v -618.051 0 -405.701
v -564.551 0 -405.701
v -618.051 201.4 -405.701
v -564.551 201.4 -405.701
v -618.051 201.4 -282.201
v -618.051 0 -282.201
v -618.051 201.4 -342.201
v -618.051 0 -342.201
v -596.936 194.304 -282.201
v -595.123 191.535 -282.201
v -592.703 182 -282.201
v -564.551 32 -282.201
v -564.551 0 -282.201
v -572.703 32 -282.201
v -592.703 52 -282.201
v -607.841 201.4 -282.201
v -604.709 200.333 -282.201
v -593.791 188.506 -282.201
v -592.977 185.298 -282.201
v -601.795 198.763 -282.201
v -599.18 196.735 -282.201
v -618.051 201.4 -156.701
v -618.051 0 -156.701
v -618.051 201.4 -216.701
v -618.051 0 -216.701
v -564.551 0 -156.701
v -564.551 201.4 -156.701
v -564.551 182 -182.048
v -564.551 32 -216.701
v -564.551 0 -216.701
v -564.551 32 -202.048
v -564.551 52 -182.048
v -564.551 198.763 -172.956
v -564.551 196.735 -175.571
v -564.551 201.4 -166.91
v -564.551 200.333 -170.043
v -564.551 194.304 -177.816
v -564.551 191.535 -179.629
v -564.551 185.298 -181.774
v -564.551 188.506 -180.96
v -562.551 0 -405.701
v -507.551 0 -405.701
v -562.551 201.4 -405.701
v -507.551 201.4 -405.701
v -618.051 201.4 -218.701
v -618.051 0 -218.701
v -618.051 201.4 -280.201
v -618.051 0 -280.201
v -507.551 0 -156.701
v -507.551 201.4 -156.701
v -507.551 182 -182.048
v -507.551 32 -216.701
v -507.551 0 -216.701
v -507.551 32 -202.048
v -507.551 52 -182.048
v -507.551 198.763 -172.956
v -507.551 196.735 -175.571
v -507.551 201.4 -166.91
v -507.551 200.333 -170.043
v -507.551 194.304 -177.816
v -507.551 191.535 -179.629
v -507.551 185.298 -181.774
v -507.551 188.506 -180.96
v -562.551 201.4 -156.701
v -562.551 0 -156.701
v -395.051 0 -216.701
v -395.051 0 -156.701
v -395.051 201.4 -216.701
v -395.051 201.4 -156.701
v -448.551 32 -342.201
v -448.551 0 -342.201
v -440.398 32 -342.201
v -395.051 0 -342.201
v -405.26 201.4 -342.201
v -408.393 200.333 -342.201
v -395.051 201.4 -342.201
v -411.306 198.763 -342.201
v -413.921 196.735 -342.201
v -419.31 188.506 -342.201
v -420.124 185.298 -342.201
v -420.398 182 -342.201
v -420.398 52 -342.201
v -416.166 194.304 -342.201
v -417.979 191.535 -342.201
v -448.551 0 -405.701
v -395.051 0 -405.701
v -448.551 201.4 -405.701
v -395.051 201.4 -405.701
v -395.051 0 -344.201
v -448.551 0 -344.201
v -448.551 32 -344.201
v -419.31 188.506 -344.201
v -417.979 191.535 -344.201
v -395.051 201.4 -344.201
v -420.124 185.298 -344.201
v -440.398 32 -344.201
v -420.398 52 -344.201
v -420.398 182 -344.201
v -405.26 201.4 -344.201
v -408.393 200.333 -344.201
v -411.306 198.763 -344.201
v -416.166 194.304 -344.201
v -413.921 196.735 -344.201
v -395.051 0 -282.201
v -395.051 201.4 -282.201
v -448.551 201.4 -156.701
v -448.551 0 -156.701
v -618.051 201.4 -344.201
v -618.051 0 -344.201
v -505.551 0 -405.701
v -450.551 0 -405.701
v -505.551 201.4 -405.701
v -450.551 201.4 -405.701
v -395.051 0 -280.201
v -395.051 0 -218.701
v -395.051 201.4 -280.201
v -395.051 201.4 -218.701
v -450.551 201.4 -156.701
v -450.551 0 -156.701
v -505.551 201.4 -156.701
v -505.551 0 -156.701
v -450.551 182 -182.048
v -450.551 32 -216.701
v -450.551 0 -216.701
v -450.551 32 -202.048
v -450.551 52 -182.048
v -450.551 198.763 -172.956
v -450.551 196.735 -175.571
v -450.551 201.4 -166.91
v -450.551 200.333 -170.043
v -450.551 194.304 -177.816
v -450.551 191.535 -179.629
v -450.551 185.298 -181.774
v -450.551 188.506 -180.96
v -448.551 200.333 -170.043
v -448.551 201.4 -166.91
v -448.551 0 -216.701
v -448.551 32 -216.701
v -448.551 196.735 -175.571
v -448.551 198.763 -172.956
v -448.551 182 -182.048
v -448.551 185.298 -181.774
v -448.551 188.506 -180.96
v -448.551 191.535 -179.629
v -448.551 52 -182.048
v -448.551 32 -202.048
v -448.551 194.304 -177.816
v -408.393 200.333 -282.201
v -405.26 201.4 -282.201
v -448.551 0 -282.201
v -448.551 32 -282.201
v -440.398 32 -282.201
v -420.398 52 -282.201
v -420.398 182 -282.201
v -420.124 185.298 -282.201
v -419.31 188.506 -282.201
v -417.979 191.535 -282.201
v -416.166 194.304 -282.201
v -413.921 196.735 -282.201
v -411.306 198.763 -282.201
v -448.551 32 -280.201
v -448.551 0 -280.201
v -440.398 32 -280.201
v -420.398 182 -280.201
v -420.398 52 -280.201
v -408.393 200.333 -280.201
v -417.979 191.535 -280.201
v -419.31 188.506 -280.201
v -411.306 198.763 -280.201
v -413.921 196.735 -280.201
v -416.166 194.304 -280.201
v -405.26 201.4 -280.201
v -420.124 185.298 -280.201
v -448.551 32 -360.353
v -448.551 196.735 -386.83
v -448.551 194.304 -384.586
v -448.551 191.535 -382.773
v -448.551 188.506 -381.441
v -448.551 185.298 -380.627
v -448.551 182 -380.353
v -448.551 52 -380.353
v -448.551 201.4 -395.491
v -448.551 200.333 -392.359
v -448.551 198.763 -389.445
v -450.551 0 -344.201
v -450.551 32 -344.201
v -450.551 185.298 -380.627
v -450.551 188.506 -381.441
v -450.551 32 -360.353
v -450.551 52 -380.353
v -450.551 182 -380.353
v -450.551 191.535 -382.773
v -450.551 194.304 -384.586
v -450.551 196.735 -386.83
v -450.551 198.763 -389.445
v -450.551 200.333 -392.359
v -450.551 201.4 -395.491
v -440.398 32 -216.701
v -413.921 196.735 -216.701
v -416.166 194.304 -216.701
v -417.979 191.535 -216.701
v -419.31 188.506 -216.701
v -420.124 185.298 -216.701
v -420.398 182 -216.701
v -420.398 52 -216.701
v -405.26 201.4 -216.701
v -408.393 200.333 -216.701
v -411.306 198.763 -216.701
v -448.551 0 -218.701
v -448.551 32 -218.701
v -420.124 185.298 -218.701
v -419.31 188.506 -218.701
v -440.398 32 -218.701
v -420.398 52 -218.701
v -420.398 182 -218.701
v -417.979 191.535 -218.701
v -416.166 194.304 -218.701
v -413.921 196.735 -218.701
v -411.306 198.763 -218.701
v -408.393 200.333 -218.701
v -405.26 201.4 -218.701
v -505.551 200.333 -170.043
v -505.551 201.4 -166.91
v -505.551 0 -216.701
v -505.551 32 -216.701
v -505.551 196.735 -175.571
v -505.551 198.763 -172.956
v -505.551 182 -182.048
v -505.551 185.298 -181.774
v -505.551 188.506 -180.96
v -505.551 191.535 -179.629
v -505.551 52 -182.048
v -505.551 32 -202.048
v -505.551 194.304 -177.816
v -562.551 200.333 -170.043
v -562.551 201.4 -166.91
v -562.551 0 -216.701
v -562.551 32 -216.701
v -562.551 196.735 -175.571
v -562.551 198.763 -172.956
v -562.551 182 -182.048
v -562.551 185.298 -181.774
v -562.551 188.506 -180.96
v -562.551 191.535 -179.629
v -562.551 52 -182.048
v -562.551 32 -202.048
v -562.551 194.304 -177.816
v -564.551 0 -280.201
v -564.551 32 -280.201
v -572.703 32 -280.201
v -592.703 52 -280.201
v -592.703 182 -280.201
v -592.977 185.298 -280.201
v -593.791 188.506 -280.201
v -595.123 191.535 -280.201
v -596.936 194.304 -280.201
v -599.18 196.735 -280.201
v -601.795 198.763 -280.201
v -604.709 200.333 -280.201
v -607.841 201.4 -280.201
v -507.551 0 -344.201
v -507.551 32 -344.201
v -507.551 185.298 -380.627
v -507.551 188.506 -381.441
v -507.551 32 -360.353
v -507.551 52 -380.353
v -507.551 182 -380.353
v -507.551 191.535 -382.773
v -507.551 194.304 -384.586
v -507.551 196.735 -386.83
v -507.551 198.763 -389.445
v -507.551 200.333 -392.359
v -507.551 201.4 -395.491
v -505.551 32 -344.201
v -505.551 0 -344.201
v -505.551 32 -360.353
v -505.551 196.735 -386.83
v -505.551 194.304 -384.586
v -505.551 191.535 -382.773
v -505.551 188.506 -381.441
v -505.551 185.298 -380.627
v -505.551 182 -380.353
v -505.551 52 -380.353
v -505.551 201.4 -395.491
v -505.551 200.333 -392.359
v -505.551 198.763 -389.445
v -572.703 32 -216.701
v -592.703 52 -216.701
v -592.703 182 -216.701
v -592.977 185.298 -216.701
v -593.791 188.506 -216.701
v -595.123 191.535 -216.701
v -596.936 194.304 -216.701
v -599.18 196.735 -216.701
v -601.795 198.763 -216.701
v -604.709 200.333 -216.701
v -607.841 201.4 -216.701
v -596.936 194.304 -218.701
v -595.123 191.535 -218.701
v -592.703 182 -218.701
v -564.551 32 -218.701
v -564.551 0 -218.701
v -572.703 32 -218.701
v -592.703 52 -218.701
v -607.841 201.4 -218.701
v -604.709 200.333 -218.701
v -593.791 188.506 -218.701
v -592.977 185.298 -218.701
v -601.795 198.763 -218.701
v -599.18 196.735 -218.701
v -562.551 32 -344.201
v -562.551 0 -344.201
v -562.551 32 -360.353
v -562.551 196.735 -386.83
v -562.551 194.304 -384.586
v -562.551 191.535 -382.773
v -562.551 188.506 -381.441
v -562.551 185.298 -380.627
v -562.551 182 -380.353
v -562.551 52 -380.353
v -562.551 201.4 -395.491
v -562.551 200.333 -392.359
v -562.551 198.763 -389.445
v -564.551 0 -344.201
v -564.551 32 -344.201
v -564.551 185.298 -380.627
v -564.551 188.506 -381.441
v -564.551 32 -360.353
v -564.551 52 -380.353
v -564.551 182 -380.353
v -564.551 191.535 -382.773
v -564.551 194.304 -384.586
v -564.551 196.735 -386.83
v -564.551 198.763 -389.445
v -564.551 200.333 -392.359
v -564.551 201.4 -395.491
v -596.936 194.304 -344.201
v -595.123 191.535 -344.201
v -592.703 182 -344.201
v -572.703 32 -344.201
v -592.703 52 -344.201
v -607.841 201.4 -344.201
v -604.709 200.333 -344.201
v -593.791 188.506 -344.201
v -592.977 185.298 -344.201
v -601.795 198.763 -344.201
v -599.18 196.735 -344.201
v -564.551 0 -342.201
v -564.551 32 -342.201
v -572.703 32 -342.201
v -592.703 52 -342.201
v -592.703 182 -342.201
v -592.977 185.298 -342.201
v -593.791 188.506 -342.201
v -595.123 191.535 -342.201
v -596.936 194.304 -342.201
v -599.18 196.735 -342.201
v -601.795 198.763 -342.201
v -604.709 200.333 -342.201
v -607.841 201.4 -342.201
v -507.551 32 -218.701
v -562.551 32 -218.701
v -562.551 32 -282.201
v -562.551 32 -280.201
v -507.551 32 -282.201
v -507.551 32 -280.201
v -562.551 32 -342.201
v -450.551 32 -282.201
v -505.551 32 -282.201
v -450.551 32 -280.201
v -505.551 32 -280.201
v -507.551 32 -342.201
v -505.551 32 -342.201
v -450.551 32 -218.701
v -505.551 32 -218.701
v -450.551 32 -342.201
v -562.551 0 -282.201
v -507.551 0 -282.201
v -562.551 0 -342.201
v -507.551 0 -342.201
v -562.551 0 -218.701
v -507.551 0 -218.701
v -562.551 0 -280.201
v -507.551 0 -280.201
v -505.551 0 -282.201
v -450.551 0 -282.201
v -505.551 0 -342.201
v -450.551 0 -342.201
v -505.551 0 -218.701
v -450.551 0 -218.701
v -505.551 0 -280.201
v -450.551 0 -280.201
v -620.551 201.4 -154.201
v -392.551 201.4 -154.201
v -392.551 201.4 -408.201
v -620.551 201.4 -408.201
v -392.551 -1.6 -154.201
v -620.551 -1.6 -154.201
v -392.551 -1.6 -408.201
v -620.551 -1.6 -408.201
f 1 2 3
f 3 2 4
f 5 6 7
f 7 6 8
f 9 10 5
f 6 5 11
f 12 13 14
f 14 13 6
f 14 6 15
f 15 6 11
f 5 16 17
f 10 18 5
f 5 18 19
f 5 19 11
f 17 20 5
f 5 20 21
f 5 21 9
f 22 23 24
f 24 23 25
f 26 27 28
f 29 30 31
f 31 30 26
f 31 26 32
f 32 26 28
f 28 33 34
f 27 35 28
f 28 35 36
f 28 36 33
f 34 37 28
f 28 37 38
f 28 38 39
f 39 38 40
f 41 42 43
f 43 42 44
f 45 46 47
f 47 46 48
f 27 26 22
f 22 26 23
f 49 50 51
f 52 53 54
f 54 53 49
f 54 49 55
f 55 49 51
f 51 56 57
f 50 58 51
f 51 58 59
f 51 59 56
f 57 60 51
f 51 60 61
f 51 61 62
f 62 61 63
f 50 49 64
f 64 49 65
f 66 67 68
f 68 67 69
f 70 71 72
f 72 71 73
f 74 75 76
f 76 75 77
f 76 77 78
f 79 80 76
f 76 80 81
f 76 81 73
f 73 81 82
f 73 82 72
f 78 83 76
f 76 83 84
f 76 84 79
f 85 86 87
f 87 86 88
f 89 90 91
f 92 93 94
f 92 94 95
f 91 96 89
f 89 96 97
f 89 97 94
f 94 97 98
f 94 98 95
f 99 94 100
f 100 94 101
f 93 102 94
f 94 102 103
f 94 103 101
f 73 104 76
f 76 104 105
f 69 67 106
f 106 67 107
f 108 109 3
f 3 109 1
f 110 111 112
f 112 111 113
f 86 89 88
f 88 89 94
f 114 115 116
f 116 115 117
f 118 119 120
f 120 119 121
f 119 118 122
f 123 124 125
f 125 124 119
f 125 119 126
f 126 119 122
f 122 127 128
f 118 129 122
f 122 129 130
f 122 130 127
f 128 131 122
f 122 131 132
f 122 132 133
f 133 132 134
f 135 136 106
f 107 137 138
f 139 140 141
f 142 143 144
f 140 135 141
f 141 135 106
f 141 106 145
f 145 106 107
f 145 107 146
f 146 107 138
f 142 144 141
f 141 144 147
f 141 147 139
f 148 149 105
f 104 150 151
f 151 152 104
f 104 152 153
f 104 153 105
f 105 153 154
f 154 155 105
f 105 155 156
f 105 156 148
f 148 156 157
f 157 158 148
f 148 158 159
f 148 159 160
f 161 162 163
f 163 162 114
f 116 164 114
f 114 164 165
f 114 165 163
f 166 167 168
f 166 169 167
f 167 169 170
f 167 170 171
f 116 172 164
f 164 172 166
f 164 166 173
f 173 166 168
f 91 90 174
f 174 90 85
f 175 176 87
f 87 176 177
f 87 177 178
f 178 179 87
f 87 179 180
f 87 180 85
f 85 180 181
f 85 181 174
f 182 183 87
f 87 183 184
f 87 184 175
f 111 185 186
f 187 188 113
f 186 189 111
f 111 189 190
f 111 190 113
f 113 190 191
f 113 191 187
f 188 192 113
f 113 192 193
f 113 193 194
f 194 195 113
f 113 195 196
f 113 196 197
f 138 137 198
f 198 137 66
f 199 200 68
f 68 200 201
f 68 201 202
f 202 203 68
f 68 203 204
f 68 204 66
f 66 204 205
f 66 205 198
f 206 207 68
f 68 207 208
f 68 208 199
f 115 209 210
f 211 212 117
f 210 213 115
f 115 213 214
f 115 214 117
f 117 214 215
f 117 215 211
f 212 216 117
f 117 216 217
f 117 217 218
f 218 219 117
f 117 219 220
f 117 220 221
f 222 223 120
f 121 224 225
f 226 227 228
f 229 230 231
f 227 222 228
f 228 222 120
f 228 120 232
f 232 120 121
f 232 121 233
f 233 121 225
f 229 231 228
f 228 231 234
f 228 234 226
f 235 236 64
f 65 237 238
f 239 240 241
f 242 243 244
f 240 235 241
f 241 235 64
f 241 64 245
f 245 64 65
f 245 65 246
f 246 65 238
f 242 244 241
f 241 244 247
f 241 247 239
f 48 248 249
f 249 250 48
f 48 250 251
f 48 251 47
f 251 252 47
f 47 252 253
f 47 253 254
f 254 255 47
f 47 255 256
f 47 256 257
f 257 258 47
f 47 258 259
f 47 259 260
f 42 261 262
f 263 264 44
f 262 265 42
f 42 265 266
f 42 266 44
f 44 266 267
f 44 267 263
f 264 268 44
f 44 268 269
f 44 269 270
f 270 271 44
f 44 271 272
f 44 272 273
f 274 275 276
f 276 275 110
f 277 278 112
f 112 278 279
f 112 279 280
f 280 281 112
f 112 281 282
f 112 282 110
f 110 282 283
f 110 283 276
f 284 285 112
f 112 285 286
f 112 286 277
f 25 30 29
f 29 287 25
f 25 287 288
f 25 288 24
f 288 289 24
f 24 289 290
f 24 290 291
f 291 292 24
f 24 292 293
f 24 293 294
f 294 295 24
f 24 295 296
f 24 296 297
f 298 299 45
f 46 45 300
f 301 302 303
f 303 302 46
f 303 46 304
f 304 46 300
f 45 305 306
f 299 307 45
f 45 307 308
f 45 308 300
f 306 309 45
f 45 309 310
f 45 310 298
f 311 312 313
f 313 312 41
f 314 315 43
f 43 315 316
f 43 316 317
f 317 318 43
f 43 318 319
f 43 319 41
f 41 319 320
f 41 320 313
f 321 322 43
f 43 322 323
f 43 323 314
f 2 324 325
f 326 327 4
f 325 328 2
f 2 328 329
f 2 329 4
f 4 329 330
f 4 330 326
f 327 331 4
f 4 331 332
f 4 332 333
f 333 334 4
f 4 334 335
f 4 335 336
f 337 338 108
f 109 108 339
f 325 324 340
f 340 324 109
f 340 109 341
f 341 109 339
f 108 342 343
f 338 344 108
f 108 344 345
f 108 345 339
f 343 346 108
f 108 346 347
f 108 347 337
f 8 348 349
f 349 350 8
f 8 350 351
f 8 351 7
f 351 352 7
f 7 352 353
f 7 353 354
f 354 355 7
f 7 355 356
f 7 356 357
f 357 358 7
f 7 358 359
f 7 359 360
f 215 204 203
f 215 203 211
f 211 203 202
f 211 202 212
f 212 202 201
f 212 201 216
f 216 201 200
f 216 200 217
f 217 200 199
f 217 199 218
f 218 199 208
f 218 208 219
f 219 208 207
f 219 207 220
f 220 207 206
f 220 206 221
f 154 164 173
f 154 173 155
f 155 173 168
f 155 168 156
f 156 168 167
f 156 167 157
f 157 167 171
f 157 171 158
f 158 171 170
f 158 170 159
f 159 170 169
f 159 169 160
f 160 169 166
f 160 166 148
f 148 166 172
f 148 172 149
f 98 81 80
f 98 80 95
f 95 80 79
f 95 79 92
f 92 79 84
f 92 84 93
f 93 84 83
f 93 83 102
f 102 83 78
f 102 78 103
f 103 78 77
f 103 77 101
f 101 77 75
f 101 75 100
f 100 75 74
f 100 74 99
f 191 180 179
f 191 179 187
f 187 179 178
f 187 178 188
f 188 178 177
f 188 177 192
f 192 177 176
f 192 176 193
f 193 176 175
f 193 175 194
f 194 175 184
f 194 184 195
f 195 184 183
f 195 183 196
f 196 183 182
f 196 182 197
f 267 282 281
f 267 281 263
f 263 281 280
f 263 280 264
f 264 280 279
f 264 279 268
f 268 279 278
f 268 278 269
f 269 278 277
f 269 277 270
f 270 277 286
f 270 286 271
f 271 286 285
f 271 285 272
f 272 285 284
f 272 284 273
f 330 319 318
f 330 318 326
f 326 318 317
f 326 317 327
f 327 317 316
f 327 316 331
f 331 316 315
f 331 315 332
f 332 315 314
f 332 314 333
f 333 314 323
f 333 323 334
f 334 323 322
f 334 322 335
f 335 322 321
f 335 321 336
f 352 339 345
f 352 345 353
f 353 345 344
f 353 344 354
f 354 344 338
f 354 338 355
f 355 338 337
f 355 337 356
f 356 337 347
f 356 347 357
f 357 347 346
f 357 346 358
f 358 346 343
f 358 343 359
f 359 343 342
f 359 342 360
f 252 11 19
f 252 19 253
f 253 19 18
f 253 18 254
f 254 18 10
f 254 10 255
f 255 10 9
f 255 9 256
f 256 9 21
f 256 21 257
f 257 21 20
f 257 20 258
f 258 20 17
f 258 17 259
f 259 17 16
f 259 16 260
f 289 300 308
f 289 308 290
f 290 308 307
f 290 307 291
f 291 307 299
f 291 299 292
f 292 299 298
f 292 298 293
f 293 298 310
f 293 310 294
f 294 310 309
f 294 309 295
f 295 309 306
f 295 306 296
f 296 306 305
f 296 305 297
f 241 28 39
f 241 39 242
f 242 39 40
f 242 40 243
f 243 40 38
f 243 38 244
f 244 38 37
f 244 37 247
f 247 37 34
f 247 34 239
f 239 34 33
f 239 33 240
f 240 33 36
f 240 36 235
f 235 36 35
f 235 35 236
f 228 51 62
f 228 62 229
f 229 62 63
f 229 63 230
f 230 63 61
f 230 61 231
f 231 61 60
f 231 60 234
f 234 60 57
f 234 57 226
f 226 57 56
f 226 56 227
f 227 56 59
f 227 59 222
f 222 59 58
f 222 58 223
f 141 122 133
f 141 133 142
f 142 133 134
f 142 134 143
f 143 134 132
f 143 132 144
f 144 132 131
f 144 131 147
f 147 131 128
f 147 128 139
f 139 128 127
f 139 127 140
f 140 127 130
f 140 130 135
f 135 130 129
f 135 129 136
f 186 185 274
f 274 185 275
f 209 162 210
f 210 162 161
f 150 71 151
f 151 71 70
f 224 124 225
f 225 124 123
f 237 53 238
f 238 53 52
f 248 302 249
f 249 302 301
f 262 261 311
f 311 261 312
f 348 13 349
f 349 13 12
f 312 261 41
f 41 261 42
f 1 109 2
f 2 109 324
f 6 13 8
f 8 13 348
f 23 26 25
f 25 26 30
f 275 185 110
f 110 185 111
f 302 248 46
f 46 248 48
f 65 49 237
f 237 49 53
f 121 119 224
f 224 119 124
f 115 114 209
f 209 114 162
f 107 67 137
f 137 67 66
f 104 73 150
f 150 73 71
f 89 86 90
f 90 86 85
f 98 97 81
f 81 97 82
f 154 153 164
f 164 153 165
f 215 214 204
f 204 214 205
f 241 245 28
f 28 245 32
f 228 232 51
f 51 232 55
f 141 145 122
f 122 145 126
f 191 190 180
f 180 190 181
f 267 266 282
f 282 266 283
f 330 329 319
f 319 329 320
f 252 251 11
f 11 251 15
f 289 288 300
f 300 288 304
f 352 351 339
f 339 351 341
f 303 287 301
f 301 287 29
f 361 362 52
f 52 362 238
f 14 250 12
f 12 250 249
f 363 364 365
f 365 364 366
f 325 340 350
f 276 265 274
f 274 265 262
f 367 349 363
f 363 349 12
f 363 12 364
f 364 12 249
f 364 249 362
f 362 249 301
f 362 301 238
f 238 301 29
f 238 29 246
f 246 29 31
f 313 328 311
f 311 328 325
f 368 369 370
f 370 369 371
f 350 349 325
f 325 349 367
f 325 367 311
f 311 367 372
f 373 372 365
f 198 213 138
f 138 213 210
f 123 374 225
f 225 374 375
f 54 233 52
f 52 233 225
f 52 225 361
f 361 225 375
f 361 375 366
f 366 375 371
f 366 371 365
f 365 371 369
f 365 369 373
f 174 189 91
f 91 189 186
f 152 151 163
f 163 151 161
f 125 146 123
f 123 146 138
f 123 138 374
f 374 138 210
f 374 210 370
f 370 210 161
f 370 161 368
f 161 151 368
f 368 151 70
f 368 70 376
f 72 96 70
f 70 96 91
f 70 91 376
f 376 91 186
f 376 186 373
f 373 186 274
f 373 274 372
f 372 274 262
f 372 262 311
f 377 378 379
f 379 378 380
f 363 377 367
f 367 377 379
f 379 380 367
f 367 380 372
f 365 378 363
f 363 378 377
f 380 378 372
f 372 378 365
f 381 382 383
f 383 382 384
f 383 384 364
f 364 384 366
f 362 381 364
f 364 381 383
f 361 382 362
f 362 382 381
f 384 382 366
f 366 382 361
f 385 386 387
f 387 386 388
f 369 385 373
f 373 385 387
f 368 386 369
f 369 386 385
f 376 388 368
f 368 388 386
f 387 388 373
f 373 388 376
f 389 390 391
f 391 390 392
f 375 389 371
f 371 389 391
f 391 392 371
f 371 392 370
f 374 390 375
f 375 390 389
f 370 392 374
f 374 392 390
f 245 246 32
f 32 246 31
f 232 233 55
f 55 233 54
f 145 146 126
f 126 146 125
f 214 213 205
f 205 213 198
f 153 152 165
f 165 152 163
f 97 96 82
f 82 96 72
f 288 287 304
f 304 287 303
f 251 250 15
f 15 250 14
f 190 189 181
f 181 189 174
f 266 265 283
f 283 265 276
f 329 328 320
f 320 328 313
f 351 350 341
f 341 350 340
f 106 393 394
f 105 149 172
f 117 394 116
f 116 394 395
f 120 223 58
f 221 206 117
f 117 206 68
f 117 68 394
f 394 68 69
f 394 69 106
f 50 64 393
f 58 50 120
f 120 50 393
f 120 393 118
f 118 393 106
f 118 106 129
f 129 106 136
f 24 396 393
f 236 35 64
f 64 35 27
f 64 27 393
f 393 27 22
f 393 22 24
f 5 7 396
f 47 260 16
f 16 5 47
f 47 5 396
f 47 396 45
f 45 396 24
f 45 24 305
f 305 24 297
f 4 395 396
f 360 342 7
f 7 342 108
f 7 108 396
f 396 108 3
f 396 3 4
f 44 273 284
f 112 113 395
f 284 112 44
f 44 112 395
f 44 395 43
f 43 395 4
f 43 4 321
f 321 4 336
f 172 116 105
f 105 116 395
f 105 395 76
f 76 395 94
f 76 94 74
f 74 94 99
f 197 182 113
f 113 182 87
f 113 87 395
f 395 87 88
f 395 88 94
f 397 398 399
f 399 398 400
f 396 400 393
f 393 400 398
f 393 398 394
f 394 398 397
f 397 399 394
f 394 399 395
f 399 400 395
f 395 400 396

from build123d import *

# Parameters (mm, degrees)
SKETCH2_W            = 228
SKETCH2_H            = 254
BOSS_EXTRUDE1_DEPTH  = 1.6
SKETCH2_6_W          = 228
SKETCH2_6_H          = 254
BOSS_EXTRUDE2_DEPTH  = 202
SKETCH2_7_W          = 2
SKETCH2_7_H          = 60
BOSS_EXTRUDE6_DEPTH  = 202
SKETCH2_8_W          = 54.5
SKETCH2_8_H          = 2
BOSS_EXTRUDE7_DEPTH  = 202
SKETCH2_9_W          = 110.5
SKETCH2_9_H          = 2
BOSS_EXTRUDE8_DEPTH  = 202
SKETCH2_10_W         = 2
SKETCH2_10_H         = 61.5
BOSS_EXTRUDE12_DEPTH = 202
SKETCH2_11_W         = 2
SKETCH2_11_H         = 123.5
BOSS_EXTRUDE13_DEPTH = 202
SKETCH2_12_W         = 110.5
SKETCH2_12_H         = 2
BOSS_EXTRUDE14_DEPTH = 202
SKETCH2_13_W         = 57
SKETCH2_13_H         = 2
BOSS_EXTRUDE19_DEPTH = 202
SKETCH2_14_W         = 2
SKETCH2_14_H         = 63.5
BOSS_EXTRUDE25_DEPTH = 202
SKETCH2_17_W         = 55
SKETCH2_17_H         = 2
SKETCH2_17_W_2       = 2
SKETCH2_17_H_2       = 60
BOSS_EXTRUDE26_DEPTH = 202
SKETCH2_18_W         = 2
SKETCH2_18_H         = 123.5
BOSS_EXTRUDE27_DEPTH = 202
SKETCH2_21_W         = 54.5
SKETCH2_21_H         = 2
BOSS_EXTRUDE36_DEPTH = 202
SKETCH2_23_W         = 56
SKETCH2_23_H         = 2
BOSS_EXTRUDE40_DEPTH = 202
SKETCH2_24_W         = 53.5
SKETCH2_24_H         = 2
BOSS_EXTRUDE41_DEPTH = 202
SKETCH3_W            = 172.305308293
SKETCH3_H            = 198.305308293
CUT_EXTRUDE1_DEPTH   = 170
CHAMFER1_SIZE        = 20
FILLET1_R            = 20
SKETCH4_W            = 228
SKETCH4_H            = 254
CUT_EXTRUDE2_DEPTH   = 0.6


with BuildPart() as part:
    # Sketch2 → Boss-Extrude1 (new body)
    with BuildSketch(Plane(origin=(0, 0, 0), x_dir=(1, 0, 0), z_dir=(0, 1, 0))):
        with Locations((-506.55062157, 281.20079547)):
            Rectangle(SKETCH2_W, SKETCH2_H)
    extrude(amount=-BOSS_EXTRUDE1_DEPTH)

    # Sketch2<6> → Boss-Extrude2 (add)
    with BuildSketch(Plane(origin=(0, 0, 0), x_dir=(1, 0, 0), z_dir=(0, 1, 0))):
        with Locations((-506.55062157, 281.20079547)):
            Rectangle(SKETCH2_6_W, SKETCH2_6_H)
        Polygon((-618.05062157, 405.70079547), (-395.05062157, 405.70079547), (-395.05062157, 282.20079547), (-394.05062157, 282.20079547), (-394.05062157, 280.20079547), (-395.05062157, 280.20079547), (-395.05062157, 156.70079547), (-618.05062157, 156.70079547), align=None, mode=Mode.SUBTRACT)
    extrude(amount=BOSS_EXTRUDE2_DEPTH)

    # Sketch2<7> → Boss-Extrude6 (add)
    with BuildSketch(Plane(origin=(0, 0, 0), x_dir=(1, 0, 0), z_dir=(0, 1, 0))):
        with Locations((-449.55062157, 186.70079547)):
            Rectangle(SKETCH2_7_W, SKETCH2_7_H)
    extrude(amount=BOSS_EXTRUDE6_DEPTH)

    # Sketch2<8> → Boss-Extrude7 (add)
    with BuildSketch(Plane(origin=(0, 0, 0), x_dir=(1, 0, 0), z_dir=(0, 1, 0))):
        with Locations((-421.30062157, 281.20079547)):
            Rectangle(SKETCH2_8_W, SKETCH2_8_H)
    extrude(amount=BOSS_EXTRUDE7_DEPTH)

    # Sketch2<9> → Boss-Extrude8 (add)
    with BuildSketch(Plane(origin=(0, 0, 0), x_dir=(1, 0, 0), z_dir=(0, 1, 0))):
        with Locations((-450.30062157, 343.20079547)):
            Rectangle(SKETCH2_9_W, SKETCH2_9_H)
    extrude(amount=BOSS_EXTRUDE8_DEPTH)

    # Sketch2<10> → Boss-Extrude12 (add)
    with BuildSketch(Plane(origin=(0, 0, 0), x_dir=(1, 0, 0), z_dir=(0, 1, 0))):
        with Locations((-449.55062157, 374.95079547)):
            Rectangle(SKETCH2_10_W, SKETCH2_10_H)
    extrude(amount=BOSS_EXTRUDE12_DEPTH)

    # Sketch2<11> → Boss-Extrude13 (add)
    with BuildSketch(Plane(origin=(0, 0, 0), x_dir=(1, 0, 0), z_dir=(0, 1, 0))):
        with Locations((-449.55062157, 280.45079547)):
            Rectangle(SKETCH2_11_W, SKETCH2_11_H)
    extrude(amount=BOSS_EXTRUDE13_DEPTH)

    # Sketch2<12> → Boss-Extrude14 (add)
    with BuildSketch(Plane(origin=(0, 0, 0), x_dir=(1, 0, 0), z_dir=(0, 1, 0))):
        with Locations((-450.30062157, 217.70079547)):
            Rectangle(SKETCH2_12_W, SKETCH2_12_H)
    extrude(amount=BOSS_EXTRUDE14_DEPTH)

    # Sketch2<13> → Boss-Extrude19 (add)
    with BuildSketch(Plane(origin=(0, 0, 0), x_dir=(1, 0, 0), z_dir=(0, 1, 0))):
        with Locations((-479.05062157, 281.20079547)):
            Rectangle(SKETCH2_13_W, SKETCH2_13_H)
    extrude(amount=BOSS_EXTRUDE19_DEPTH)

    # Sketch2<14> → Boss-Extrude25 (add)
    with BuildSketch(Plane(origin=(0, 0, 0), x_dir=(1, 0, 0), z_dir=(0, 1, 0))):
        with Locations((-506.55062157, 248.45079547)):
            Rectangle(SKETCH2_14_W, SKETCH2_14_H)
    extrude(amount=BOSS_EXTRUDE25_DEPTH)

    # Sketch2<17> → Boss-Extrude26 (add)
    with BuildSketch(Plane(origin=(0, 0, 0), x_dir=(1, 0, 0), z_dir=(0, 1, 0))):
        with Locations((-535.05062157, 217.70079547)):
            Rectangle(SKETCH2_17_W, SKETCH2_17_H)
        with Locations((-506.55062157, 186.70079547)):
            Rectangle(SKETCH2_17_W_2, SKETCH2_17_H_2)
    extrude(amount=BOSS_EXTRUDE26_DEPTH)

    # Sketch2<18> → Boss-Extrude27 (add)
    with BuildSketch(Plane(origin=(0, 0, 0), x_dir=(1, 0, 0), z_dir=(0, 1, 0))):
        with Locations((-563.55062157, 218.45079547)):
            Rectangle(SKETCH2_18_W, SKETCH2_18_H)
    extrude(amount=BOSS_EXTRUDE27_DEPTH)

    # Sketch2<21> → Boss-Extrude36 (add)
    with BuildSketch(Plane(origin=(0, 0, 0), x_dir=(1, 0, 0), z_dir=(0, 1, 0))):
        with Locations((-590.80062157, 281.20079547)):
            Rectangle(SKETCH2_21_W, SKETCH2_21_H)
    extrude(amount=BOSS_EXTRUDE36_DEPTH)

    # Sketch2<23> → Boss-Extrude40 (add)
    with BuildSketch(Plane(origin=(0, 0, 0), x_dir=(1, 0, 0), z_dir=(0, 1, 0))):
        Polygon((-507.55062157, 406.70079547), (-507.55062157, 344.20079547), (-562.55062157, 344.20079547), (-562.55062157, 342.20079547), (-507.55062157, 342.20079547), (-507.55062157, 282.20079547), (-505.55062157, 282.20079547), (-505.55062157, 406.70079547), align=None)
        with Locations((-535.55062157, 281.20079547)):
            Rectangle(SKETCH2_23_W, SKETCH2_23_H)
    extrude(amount=BOSS_EXTRUDE40_DEPTH)

    # Sketch2<24> → Boss-Extrude41 (add)
    with BuildSketch(Plane(origin=(0, 0, 0), x_dir=(1, 0, 0), z_dir=(0, 1, 0))):
        Polygon((-564.55062157, 405.70079547), (-564.55062157, 344.20079547), (-618.05062157, 344.20079547), (-618.05062157, 342.20079547), (-564.55062157, 342.20079547), (-564.55062157, 282.20079547), (-562.55062157, 282.20079547), (-562.55062157, 405.70079547), align=None)
        with Locations((-591.30062157, 217.70079547)):
            Rectangle(SKETCH2_24_W, SKETCH2_24_H)
    extrude(amount=BOSS_EXTRUDE41_DEPTH)

    # Sketch3 → Cut-Extrude1 (cut)
    with BuildSketch(Plane(origin=(0, 202, 0), x_dir=(1, 0, 0), z_dir=(0, 1, 0))):
        with Locations((-506.550621569, 281.20079547)):
            Rectangle(SKETCH3_W, SKETCH3_H)
    extrude(amount=-CUT_EXTRUDE1_DEPTH, mode=Mode.SUBTRACT)

    # Chamfer1
    chamfer1_edges = [part.edges().sort_by_distance(p)[0] for p in [
        (-563.55062157, 32, -182.048141324),
        (-506.55062157, 32, -182.048141324),
        (-449.55062157, 32, -182.048141324),
        (-420.397967423, 32, -217.70079547),
        (-420.397967423, 32, -281.20079547),
        (-420.397967423, 32, -343.20079547),
        (-592.703275716, 32, -217.70079547),
        (-592.703275716, 32, -281.20079547),
        (-449.55062157, 32, -380.353449617),
        (-506.55062157, 32, -380.353449617),
        (-563.55062157, 32, -380.353449617),
        (-592.703275716, 32, -343.20079547),
    ]]
    chamfer(chamfer1_edges, length=CHAMFER1_SIZE)

    # Fillet1
    fillet1_edges = [part.edges().sort_by_distance(p)[0] for p in [
        (-420.397967423, 202, -217.70079547),
        (-420.397967423, 202, -281.20079547),
        (-420.397967423, 202, -343.20079547),
        (-449.55062157, 202, -380.353449617),
        (-506.55062157, 202, -380.353449617),
        (-563.55062157, 202, -380.353449617),
        (-592.703275716, 202, -343.20079547),
        (-592.703275716, 202, -281.20079547),
        (-592.703275716, 202, -217.70079547),
        (-563.55062157, 202, -182.048141324),
        (-506.55062157, 202, -182.048141324),
        (-449.55062157, 202, -182.048141324),
    ]]
    fillet(fillet1_edges, radius=FILLET1_R)

    # Sketch4 → Cut-Extrude2 (cut)
    with BuildSketch(Plane(origin=(0, 202, 0), x_dir=(1, 0, 0), z_dir=(0, 1, 0))):
        with Locations((-506.55062157, 281.20079547)):
            Rectangle(SKETCH4_W, SKETCH4_H)
    extrude(amount=-CUT_EXTRUDE2_DEPTH, mode=Mode.SUBTRACT)


solid = part.part
